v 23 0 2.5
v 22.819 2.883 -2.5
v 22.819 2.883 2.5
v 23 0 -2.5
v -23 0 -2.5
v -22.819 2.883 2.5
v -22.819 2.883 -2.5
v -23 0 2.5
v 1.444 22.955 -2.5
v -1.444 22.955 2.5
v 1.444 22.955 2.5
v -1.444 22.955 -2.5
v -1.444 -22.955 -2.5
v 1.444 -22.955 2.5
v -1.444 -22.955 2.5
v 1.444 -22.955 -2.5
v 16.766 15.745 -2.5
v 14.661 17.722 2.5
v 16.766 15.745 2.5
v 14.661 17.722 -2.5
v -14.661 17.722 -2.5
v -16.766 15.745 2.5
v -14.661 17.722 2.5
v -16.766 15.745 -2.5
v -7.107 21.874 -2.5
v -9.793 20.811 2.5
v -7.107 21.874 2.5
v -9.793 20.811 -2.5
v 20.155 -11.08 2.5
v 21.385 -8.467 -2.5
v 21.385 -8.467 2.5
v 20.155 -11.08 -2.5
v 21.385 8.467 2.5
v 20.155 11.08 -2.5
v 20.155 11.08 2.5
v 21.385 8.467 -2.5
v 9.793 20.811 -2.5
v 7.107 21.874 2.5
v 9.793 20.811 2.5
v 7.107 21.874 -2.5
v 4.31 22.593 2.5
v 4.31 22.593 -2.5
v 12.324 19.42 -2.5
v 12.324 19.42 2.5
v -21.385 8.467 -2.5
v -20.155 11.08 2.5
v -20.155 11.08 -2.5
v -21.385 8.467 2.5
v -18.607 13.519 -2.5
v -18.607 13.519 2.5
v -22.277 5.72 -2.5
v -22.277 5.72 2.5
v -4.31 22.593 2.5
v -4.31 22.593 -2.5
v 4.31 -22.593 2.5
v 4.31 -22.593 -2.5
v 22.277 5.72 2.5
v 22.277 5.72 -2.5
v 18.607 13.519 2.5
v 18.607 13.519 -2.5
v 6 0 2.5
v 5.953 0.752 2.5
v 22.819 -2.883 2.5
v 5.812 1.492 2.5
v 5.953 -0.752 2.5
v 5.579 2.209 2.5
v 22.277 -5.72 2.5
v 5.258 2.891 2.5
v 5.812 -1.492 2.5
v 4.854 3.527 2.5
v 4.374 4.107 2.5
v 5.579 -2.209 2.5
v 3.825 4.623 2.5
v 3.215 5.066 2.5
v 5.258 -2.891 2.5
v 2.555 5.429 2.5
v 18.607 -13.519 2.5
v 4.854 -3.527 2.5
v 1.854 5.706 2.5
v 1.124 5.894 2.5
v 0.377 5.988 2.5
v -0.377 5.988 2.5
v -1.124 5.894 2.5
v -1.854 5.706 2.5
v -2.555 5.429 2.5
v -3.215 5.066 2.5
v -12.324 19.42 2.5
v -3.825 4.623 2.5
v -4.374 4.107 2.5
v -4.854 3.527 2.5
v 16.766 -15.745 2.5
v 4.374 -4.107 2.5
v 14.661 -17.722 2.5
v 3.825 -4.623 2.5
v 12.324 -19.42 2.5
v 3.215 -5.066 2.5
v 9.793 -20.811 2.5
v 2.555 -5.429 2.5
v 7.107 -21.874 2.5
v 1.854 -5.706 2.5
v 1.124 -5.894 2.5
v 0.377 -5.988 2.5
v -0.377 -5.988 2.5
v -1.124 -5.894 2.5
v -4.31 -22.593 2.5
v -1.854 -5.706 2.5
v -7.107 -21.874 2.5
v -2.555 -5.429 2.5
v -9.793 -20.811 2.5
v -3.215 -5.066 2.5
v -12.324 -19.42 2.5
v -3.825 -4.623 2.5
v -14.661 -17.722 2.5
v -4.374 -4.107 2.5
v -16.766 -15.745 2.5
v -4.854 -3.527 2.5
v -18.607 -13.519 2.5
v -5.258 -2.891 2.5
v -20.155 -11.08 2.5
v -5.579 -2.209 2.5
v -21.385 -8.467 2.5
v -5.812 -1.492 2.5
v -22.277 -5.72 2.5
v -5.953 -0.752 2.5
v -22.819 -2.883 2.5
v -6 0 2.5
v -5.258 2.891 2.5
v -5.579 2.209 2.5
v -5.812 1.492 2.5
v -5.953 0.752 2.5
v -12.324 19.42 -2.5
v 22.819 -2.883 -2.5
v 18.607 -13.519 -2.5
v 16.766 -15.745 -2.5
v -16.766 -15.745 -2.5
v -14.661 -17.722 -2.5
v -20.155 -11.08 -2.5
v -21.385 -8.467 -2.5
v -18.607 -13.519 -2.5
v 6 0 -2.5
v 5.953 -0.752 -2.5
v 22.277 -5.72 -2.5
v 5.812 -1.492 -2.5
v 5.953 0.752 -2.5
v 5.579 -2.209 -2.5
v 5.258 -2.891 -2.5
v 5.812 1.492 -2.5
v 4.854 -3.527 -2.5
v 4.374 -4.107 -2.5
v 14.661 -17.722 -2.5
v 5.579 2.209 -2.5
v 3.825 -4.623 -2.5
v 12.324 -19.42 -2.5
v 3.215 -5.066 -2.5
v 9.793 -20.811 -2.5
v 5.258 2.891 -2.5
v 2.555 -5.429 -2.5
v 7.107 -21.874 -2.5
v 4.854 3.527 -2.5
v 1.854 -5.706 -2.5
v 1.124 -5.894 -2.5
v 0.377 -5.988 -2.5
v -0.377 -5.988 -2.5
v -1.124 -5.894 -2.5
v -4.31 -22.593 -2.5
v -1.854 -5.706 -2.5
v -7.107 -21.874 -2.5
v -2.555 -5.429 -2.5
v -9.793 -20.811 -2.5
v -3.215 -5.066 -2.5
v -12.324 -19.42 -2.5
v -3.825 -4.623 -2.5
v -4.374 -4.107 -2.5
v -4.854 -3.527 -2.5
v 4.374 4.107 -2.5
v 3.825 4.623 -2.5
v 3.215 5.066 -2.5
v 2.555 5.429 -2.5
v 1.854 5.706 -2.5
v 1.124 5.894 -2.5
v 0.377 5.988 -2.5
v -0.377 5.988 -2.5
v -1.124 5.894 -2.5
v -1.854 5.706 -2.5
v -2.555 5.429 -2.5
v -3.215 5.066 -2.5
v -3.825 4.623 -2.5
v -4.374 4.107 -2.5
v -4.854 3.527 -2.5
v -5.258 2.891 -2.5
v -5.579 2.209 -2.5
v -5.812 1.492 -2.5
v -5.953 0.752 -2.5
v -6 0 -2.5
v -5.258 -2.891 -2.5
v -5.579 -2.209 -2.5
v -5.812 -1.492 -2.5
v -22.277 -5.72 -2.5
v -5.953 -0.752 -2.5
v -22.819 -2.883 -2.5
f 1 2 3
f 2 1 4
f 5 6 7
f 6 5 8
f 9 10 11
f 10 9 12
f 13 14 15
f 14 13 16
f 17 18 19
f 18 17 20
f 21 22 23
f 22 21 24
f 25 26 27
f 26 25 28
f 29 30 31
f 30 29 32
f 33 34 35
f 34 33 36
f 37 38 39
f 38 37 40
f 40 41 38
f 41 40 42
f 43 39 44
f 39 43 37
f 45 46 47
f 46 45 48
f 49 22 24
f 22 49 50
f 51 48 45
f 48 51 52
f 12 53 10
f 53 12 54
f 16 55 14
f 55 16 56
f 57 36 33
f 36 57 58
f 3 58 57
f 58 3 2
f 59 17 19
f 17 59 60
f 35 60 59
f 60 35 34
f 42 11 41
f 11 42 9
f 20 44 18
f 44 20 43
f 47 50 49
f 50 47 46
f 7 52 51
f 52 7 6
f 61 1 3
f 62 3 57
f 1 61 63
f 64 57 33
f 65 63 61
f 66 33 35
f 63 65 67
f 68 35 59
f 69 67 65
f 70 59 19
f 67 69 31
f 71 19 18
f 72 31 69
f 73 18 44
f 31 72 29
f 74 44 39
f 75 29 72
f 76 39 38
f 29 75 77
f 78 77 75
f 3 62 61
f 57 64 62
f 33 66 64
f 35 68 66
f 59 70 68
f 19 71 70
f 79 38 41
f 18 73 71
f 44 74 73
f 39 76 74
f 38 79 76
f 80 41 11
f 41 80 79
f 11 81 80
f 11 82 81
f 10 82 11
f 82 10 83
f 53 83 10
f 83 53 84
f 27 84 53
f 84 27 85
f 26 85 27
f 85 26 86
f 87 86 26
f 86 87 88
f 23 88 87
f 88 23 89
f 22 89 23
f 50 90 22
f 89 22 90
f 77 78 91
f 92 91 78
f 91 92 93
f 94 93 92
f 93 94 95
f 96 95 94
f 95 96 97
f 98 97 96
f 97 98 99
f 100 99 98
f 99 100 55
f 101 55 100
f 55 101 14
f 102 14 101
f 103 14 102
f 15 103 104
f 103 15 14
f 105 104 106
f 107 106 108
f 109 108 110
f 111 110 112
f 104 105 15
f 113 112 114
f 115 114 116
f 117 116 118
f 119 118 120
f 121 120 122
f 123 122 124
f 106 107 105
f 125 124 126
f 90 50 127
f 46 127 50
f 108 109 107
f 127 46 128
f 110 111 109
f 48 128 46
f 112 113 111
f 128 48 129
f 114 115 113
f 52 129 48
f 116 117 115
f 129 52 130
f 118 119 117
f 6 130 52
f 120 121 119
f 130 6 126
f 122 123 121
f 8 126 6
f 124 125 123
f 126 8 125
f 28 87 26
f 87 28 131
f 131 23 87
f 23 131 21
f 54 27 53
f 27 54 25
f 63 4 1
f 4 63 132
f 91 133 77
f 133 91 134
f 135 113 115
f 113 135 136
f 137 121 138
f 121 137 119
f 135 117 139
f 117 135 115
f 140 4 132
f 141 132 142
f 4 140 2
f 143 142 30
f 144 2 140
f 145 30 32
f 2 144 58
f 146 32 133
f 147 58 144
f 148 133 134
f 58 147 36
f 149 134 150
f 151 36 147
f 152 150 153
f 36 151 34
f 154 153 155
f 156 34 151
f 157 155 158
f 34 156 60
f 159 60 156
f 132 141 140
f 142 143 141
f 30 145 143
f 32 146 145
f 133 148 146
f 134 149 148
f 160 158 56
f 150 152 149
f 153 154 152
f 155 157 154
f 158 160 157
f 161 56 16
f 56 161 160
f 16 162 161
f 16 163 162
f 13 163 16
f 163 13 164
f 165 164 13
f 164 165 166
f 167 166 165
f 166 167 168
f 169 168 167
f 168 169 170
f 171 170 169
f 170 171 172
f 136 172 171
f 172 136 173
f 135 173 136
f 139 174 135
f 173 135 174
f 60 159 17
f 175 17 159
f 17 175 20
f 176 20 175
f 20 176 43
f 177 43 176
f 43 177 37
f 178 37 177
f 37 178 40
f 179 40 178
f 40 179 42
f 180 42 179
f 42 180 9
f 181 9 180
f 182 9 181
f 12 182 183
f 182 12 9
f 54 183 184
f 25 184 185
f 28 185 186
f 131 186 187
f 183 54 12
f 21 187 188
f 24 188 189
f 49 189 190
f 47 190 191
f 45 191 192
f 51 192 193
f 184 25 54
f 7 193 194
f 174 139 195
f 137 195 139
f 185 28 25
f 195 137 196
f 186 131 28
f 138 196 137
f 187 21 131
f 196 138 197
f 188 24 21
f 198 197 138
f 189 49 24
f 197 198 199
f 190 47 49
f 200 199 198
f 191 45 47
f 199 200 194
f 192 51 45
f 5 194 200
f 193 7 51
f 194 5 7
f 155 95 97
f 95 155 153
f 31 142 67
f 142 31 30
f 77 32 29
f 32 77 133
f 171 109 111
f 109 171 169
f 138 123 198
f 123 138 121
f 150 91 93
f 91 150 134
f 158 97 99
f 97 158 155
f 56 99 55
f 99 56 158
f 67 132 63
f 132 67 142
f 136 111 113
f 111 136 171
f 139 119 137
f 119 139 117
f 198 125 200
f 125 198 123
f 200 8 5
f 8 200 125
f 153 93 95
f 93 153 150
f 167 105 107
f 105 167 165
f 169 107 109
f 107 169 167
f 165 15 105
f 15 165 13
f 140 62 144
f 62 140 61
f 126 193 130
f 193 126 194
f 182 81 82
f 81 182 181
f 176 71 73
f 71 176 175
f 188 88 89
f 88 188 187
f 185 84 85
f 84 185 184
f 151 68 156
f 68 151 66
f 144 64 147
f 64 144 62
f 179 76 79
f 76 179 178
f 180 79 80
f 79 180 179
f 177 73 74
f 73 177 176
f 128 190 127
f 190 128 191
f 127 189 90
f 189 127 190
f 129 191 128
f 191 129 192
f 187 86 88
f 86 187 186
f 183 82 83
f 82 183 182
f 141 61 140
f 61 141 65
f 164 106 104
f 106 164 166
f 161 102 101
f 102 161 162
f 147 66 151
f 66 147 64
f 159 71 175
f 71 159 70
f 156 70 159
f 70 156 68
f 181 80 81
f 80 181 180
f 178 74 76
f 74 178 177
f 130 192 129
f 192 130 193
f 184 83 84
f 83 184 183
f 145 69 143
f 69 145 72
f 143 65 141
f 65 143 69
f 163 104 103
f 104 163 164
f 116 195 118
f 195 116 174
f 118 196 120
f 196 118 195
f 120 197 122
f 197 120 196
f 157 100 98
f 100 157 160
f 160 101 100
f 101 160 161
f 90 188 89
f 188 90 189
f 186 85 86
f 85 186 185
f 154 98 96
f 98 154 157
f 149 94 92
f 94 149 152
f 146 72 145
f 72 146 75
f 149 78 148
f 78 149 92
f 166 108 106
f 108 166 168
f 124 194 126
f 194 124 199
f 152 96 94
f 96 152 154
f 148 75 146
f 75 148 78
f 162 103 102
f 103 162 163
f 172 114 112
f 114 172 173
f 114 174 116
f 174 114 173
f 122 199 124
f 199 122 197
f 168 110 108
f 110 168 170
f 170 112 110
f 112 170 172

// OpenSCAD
$fn = 50;


difference() {
	union() {
		translate(v = [0, 0, -2.5000000000]) {
			cylinder(h = 5, r = 23.0000000000);
		}
	}
	union() {
		translate(v = [0, 0, -100.0000000000]) {
			cylinder(h = 200, r = 6);
		}
	}
}
